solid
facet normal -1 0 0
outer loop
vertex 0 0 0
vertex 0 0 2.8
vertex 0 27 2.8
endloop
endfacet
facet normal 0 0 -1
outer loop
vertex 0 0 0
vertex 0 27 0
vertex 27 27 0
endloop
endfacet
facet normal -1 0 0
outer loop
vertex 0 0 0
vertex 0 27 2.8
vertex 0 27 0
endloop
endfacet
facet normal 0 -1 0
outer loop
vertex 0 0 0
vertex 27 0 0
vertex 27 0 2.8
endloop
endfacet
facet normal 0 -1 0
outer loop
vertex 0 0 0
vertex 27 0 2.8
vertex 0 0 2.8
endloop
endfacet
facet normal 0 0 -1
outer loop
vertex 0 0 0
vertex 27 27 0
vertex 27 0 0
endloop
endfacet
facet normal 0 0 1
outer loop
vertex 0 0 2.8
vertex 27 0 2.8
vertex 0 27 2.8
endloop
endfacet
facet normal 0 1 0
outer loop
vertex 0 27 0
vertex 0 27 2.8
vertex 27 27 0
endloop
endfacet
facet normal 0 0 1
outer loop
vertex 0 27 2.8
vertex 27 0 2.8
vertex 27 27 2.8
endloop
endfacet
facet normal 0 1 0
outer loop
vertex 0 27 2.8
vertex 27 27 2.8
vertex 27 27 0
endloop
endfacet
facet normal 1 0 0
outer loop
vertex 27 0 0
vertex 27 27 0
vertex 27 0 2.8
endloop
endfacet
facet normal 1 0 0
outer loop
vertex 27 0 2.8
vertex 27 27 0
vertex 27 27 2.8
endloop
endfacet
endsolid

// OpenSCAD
/* Warning, this is a very basic generator with a lot of approximation 
input data : [B1BGA, NLC, 27x27x2.80mm, 672, , A, C04-25479A]
generated by com.zoubworld.electronics.cad.model3d.Basic
Date : Sun Feb 15 10:50:49 CET 2026
*/

//body
color("black")
translate([0,0,0])
cube([27.0,27.0,2.8], center=false);
